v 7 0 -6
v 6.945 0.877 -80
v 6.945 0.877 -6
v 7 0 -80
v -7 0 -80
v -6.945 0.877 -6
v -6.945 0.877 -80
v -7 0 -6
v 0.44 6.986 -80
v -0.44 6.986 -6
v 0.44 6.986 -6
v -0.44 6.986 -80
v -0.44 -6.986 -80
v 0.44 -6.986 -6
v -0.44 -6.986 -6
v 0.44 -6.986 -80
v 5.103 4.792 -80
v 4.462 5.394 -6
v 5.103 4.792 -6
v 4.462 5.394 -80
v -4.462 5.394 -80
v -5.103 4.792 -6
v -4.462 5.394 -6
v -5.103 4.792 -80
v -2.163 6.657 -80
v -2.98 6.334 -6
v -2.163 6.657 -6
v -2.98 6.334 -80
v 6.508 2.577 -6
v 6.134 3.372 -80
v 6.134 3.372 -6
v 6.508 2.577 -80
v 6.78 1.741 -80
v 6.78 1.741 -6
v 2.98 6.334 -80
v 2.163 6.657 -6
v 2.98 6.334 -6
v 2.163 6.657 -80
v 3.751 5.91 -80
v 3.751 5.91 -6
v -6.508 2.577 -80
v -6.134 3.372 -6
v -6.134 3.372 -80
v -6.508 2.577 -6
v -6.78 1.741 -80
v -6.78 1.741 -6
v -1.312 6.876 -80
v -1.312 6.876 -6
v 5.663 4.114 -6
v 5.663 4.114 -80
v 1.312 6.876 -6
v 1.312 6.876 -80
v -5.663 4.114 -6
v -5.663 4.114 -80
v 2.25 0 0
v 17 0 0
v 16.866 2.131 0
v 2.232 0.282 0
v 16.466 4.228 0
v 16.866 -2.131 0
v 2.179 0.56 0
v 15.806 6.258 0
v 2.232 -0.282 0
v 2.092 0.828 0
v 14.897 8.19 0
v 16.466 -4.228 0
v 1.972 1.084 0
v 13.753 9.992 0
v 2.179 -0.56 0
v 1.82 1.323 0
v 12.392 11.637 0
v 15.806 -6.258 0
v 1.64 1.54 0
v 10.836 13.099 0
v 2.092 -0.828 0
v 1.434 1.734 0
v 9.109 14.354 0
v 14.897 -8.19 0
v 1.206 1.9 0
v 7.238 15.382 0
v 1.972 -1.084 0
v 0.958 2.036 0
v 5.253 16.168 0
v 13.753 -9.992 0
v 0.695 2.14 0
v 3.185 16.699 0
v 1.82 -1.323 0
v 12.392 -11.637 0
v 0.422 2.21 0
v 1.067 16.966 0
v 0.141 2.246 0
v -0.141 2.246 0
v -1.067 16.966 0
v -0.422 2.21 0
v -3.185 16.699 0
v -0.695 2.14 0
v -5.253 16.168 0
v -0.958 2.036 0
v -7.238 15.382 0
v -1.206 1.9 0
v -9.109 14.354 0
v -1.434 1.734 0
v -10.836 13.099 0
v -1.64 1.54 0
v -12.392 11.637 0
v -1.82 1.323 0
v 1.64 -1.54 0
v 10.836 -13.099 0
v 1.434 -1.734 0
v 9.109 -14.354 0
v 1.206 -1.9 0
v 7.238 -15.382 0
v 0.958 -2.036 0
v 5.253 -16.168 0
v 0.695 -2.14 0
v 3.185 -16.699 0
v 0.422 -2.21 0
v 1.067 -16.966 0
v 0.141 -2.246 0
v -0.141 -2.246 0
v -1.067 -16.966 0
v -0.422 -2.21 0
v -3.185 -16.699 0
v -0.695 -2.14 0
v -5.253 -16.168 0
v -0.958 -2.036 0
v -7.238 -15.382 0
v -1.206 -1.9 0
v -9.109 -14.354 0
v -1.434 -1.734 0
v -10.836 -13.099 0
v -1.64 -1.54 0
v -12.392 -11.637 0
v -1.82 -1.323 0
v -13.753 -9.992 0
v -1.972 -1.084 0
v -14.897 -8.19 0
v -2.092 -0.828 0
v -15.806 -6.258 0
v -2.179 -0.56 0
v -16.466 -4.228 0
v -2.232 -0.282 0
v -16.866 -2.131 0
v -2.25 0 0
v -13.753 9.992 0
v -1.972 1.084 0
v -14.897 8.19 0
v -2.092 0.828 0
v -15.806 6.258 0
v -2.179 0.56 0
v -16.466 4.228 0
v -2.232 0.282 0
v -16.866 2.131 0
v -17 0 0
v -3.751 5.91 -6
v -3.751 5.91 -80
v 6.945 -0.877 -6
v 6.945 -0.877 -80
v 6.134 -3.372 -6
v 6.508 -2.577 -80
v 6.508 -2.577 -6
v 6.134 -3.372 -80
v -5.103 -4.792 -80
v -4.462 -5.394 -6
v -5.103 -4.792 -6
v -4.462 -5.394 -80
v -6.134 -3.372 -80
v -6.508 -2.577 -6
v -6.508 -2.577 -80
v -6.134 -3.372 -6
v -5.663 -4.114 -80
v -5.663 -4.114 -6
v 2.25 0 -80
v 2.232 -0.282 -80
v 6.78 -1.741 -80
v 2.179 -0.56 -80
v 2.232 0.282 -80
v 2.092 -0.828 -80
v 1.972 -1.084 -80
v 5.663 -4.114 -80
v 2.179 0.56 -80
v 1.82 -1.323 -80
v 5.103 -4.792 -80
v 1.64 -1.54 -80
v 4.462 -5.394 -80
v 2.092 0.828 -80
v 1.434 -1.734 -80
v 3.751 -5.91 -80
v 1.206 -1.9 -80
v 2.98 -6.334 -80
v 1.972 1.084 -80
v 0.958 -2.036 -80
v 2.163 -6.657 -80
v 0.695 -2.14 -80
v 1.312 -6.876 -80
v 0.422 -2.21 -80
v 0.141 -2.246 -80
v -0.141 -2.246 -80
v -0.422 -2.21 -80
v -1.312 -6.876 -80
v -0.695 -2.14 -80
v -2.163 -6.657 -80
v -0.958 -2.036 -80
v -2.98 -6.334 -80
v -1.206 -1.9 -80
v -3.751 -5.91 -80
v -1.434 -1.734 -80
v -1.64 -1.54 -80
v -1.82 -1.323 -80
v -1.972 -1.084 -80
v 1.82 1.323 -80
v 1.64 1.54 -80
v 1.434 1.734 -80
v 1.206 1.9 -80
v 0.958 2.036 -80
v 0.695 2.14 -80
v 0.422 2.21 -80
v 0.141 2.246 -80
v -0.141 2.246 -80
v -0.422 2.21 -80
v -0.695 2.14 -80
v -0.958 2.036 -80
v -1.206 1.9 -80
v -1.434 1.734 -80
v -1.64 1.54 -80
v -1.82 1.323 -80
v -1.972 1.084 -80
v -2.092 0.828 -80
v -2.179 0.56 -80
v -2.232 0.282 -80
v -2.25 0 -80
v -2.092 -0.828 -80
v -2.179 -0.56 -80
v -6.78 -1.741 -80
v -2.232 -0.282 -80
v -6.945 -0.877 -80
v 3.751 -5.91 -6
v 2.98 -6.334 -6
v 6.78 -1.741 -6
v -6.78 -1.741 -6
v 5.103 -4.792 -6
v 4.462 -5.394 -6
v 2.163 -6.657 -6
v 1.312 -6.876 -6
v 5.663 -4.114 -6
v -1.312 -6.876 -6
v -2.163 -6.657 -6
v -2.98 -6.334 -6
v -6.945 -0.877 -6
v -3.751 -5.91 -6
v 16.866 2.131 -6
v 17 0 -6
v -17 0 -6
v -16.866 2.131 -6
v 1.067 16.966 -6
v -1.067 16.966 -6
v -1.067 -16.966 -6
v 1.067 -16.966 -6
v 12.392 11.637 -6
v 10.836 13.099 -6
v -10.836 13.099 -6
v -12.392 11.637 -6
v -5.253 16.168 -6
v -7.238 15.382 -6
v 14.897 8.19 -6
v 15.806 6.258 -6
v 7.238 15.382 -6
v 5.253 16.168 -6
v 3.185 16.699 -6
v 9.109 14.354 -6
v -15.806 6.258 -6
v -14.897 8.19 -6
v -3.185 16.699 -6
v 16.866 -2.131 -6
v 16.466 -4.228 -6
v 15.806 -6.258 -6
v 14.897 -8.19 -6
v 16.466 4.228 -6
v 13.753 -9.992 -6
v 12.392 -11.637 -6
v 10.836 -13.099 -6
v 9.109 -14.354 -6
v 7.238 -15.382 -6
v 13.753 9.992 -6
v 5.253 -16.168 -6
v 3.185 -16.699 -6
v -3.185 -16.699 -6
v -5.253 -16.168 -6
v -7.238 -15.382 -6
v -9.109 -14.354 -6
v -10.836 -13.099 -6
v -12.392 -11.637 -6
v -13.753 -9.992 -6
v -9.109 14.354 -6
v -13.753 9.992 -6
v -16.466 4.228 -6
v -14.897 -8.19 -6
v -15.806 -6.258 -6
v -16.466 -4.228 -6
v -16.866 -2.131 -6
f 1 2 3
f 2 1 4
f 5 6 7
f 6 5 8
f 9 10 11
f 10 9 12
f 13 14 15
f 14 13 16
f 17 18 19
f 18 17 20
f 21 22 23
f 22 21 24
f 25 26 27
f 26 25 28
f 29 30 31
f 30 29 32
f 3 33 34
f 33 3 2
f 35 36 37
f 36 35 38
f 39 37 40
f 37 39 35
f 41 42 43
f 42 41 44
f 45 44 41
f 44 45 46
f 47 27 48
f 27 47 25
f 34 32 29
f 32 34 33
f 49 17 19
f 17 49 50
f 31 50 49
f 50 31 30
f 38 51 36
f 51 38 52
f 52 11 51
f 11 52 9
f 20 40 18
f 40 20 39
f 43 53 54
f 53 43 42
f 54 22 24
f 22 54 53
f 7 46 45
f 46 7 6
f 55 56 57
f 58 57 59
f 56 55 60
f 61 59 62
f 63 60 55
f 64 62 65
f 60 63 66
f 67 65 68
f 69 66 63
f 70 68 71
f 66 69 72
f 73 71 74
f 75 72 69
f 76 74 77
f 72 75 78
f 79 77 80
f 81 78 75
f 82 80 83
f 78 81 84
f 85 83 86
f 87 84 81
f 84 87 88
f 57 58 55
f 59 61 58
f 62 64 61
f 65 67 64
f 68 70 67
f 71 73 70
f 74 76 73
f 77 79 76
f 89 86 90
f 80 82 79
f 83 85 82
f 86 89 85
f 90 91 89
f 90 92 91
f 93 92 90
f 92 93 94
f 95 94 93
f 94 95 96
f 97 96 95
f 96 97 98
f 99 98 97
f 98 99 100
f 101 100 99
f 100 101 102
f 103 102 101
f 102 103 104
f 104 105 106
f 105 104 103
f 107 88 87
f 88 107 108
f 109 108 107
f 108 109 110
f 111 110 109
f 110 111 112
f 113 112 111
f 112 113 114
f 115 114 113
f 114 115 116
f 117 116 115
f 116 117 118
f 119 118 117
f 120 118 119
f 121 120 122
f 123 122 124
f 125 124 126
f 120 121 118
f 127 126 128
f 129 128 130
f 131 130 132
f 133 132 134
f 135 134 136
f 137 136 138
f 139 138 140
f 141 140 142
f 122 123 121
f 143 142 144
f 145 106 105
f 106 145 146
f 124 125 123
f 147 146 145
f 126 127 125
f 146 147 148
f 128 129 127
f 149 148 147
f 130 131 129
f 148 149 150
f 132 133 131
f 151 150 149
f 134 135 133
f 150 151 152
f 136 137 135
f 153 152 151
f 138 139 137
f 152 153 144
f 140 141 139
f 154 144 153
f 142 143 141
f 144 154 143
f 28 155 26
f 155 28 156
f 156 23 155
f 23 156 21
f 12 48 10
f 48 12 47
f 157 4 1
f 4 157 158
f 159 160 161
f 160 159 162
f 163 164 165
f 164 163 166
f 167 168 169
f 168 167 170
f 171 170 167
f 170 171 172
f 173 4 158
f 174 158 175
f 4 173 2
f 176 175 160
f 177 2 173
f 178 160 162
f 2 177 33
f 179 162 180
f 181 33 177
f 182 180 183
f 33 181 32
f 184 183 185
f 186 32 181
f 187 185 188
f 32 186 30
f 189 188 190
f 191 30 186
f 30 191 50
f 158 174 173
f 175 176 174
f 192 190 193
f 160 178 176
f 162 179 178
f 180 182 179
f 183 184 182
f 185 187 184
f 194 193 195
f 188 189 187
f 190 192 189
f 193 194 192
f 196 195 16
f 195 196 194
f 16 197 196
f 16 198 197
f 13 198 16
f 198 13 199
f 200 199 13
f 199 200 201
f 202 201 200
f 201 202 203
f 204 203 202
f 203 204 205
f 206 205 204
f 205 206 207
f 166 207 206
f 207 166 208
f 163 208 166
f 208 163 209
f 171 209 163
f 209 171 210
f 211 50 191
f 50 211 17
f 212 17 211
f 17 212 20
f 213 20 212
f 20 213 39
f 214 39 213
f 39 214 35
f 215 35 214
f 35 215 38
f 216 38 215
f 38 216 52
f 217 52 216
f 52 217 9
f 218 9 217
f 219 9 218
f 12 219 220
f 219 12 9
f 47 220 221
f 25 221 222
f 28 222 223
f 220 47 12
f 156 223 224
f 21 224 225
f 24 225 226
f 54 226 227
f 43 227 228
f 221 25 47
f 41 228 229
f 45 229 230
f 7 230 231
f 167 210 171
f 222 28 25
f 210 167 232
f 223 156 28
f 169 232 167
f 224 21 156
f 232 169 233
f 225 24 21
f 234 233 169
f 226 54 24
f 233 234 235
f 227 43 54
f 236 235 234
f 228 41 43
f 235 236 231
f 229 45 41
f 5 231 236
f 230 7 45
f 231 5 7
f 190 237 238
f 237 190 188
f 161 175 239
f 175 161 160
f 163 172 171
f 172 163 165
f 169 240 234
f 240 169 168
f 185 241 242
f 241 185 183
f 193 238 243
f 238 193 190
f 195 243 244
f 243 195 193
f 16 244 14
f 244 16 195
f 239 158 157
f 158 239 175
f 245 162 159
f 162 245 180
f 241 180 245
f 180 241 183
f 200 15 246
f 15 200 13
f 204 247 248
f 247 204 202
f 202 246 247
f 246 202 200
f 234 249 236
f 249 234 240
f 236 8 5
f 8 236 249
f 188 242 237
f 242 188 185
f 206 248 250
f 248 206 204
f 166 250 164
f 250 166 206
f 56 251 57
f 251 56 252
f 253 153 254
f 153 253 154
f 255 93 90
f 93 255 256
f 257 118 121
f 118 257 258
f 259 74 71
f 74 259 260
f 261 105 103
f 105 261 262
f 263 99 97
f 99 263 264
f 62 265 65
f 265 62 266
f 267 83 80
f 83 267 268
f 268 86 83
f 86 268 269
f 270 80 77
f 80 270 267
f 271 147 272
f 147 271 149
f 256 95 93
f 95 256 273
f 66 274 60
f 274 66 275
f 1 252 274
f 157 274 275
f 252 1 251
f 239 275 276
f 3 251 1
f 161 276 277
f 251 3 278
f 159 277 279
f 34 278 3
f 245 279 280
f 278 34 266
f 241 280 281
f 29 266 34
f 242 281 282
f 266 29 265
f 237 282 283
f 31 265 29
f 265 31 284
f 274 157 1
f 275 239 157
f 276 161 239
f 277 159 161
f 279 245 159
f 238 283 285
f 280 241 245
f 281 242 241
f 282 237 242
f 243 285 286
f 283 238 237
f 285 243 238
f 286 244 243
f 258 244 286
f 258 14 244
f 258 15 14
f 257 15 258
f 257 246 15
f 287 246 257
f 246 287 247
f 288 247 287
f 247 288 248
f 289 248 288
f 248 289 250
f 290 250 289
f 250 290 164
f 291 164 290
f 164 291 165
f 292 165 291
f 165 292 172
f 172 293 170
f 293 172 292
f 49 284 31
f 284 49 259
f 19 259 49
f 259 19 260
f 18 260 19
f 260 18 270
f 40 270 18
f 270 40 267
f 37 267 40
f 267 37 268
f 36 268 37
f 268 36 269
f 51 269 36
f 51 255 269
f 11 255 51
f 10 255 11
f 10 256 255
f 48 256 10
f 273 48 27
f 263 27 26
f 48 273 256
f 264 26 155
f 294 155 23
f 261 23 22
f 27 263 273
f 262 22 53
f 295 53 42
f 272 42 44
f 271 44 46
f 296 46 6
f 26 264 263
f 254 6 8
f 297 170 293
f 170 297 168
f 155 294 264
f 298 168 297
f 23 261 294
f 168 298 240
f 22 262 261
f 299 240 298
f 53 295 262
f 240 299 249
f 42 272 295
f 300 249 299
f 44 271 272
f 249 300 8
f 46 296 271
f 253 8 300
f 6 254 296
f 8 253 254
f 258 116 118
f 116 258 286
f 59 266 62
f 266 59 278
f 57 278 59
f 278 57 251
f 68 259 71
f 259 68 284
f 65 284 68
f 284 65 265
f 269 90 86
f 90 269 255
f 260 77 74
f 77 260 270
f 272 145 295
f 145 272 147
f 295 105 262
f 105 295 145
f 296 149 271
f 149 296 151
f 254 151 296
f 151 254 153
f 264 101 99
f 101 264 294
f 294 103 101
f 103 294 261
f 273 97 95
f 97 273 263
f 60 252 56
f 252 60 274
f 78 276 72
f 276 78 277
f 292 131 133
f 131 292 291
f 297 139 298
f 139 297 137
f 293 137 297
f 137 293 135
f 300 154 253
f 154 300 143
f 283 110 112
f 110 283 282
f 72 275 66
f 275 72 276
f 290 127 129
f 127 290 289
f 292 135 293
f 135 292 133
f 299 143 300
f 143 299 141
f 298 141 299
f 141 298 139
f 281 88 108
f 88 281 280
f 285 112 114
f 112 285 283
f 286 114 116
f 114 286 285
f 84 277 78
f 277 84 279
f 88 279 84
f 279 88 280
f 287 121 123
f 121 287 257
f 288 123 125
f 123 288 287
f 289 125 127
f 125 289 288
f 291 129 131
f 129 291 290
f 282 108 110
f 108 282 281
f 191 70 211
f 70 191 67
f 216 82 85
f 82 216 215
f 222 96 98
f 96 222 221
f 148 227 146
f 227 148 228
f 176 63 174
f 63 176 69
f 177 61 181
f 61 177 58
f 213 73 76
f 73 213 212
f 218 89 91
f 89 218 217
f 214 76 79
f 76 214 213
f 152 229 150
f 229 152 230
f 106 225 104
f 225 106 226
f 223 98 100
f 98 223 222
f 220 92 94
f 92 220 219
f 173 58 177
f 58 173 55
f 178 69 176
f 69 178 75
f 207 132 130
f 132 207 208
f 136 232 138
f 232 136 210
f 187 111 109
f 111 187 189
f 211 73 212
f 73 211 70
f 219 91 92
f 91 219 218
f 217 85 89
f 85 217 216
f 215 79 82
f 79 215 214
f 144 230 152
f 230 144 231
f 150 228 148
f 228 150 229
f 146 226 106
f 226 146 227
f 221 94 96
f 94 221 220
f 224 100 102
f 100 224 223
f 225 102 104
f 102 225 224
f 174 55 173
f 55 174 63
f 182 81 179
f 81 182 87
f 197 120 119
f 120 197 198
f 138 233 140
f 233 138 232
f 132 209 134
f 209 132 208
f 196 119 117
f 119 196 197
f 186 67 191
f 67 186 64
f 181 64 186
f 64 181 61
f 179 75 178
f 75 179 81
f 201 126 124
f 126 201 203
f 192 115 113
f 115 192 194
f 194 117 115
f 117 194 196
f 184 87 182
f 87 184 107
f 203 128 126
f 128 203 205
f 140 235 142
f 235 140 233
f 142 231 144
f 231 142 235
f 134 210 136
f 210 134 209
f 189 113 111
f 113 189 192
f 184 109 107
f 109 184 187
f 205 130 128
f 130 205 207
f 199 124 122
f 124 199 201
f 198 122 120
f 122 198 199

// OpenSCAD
$fn = 50;


difference() {
	union() {
		translate(v = [0, 0, -80.0000000000]) {
			cylinder(h = 80, r = 7.0000000000);
		}
		translate(v = [0, 0, -6.0000000000]) {
			cylinder(h = 6, r = 17.0000000000);
		}
	}
	union() {
		#translate(v = [0, 0, -80]) {
			cylinder(h = 80, r = 2.2500000000);
		}
	}
}
